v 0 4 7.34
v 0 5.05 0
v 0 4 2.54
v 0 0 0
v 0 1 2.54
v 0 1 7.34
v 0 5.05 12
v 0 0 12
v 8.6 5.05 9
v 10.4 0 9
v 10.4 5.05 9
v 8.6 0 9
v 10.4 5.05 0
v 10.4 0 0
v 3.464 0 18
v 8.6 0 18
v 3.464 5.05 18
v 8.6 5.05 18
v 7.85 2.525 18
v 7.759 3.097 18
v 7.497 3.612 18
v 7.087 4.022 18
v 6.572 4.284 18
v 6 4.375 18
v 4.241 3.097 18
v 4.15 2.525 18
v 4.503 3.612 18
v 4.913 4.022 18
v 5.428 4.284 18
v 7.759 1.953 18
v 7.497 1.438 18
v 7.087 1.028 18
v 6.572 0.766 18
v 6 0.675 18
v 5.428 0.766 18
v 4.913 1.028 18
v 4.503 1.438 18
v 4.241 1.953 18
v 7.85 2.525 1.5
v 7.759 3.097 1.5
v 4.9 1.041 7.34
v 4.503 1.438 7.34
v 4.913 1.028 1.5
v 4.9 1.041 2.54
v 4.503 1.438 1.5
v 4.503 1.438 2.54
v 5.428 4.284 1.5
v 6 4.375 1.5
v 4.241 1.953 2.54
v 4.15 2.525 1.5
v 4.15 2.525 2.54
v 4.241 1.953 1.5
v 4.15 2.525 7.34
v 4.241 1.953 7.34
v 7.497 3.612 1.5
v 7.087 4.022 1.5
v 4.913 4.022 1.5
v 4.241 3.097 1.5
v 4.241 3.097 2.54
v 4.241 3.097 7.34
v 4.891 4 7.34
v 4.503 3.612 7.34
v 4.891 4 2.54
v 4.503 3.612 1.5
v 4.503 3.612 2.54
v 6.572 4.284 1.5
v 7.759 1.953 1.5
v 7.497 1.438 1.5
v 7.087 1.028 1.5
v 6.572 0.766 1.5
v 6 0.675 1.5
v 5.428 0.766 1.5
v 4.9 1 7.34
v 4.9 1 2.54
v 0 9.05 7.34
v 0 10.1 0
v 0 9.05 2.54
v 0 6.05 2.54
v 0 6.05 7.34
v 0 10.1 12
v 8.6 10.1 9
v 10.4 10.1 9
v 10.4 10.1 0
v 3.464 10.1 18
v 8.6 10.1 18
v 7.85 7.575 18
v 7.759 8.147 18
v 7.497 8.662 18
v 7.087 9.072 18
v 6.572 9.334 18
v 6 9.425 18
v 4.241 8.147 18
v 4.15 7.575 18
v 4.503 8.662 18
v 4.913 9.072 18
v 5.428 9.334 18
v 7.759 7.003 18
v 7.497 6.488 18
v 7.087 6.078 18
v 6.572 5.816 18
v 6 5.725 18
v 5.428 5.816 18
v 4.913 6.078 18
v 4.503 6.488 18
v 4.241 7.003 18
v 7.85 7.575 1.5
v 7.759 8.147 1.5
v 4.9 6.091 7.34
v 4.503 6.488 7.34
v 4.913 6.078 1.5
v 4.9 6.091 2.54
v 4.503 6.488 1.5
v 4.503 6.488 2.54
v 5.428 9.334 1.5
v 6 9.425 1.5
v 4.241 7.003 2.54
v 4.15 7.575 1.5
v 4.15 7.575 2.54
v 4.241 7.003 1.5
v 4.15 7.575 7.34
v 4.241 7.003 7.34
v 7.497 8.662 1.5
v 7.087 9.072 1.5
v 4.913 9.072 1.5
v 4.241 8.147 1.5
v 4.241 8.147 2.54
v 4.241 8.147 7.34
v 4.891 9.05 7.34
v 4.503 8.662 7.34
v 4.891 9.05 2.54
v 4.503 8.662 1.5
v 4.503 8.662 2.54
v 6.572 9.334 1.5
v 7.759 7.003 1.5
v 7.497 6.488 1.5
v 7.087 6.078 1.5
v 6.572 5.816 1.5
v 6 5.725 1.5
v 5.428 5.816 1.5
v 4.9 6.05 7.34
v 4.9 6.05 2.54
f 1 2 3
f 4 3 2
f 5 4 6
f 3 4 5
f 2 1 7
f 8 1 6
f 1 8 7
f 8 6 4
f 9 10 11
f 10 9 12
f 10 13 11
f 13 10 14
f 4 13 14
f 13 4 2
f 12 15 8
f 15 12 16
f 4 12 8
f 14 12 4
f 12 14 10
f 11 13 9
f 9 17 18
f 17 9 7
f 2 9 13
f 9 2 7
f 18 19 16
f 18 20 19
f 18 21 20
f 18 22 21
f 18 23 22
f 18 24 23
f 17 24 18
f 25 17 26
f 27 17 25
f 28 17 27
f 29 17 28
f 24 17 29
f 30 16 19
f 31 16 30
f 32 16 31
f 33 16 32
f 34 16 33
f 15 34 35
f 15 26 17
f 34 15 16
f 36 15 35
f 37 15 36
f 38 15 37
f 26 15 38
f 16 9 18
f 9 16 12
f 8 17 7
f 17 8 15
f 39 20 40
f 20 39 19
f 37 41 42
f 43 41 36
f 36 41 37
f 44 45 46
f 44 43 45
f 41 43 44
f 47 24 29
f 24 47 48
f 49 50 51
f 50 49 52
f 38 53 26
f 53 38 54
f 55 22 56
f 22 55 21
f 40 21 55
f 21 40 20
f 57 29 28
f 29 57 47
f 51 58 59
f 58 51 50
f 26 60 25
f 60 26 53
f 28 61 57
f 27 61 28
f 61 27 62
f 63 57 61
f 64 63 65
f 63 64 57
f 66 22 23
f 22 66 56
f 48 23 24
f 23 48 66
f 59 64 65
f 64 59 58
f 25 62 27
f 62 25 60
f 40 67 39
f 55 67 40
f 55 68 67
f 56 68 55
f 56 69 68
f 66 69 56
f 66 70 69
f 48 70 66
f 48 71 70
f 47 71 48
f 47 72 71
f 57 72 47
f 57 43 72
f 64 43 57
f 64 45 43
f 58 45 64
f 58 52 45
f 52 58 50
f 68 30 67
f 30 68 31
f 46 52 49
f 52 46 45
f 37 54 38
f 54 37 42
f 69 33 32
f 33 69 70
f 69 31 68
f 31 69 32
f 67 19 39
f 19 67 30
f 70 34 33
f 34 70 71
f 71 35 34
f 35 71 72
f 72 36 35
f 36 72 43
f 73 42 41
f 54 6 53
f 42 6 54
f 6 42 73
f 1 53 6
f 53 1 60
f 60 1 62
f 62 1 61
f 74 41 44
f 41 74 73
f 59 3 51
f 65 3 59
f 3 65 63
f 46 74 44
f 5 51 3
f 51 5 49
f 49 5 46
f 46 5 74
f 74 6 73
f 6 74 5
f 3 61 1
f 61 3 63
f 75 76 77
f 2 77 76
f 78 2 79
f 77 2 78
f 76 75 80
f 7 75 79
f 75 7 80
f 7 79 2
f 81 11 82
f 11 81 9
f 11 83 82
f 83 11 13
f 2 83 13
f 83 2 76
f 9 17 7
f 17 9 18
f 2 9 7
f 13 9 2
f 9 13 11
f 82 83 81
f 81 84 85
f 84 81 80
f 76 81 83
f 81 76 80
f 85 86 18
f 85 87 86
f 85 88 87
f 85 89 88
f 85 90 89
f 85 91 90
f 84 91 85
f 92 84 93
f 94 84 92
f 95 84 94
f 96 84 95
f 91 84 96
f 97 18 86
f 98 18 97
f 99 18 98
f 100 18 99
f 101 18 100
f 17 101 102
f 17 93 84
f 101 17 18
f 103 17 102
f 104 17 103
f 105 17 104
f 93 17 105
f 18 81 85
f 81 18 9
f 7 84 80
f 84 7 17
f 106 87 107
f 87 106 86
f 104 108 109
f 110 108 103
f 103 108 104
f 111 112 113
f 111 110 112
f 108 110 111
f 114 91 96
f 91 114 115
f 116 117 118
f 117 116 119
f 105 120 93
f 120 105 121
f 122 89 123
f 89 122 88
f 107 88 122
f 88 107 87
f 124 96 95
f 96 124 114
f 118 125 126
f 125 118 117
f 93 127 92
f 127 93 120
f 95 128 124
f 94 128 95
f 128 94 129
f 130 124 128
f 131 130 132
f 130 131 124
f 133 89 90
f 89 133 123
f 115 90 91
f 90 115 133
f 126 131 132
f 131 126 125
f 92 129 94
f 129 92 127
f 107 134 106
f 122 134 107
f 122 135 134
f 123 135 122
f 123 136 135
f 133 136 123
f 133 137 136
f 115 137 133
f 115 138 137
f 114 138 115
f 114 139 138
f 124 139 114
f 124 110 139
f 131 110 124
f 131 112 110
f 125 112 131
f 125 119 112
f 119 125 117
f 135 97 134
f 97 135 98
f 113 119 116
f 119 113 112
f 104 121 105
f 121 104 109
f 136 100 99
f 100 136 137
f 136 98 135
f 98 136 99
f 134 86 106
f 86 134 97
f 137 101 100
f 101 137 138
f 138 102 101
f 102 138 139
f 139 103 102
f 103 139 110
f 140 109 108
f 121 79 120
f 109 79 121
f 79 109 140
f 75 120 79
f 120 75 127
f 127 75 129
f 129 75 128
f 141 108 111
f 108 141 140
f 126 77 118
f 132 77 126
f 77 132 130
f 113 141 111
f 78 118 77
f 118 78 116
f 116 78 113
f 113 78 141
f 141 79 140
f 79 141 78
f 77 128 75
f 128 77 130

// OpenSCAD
// Neeraj Verma Aug, 3, 2018
// GPL V3 (https://www.gnu.org/licenses/gpl.txt)

// This is a mock of the real component
// Do not use on your real device.
/*
  use </path/to/libraries/screw_terminal_block.scad>
  //full
  screw_terminal_block(width=5.05, count=2)
  //simple
  screw_terminal_block();
  */
boxHeight=9;
width=5.05;
count=2;

module body(width=width) {
    difference() {
    union() {
        cube ([10.4,width,boxHeight]);
        translate([0,0,boxHeight]) cube ([8.6,width,boxHeight]);
    }
    translate([0,-0.1,boxHeight*2-6]) rotate([0,-60,0]) cube ([10.4,width+0.2,boxHeight]);    
    }
}

module cutout() {
    // cutout
    translate([6,width/2,boxHeight-7.5]) cylinder(d=3.7,17, $fn=20);    
    translate([-0.1,1,2.54]) cube([5,3,4.8]);
}

module screw_terminal_block(width=width, count=count) {
    for(i=[1:count]) {
        translate([0,width*i-width,0]) difference() {    
            body(width);
            cutout();
        }
    }
}

screw_terminal_block();
